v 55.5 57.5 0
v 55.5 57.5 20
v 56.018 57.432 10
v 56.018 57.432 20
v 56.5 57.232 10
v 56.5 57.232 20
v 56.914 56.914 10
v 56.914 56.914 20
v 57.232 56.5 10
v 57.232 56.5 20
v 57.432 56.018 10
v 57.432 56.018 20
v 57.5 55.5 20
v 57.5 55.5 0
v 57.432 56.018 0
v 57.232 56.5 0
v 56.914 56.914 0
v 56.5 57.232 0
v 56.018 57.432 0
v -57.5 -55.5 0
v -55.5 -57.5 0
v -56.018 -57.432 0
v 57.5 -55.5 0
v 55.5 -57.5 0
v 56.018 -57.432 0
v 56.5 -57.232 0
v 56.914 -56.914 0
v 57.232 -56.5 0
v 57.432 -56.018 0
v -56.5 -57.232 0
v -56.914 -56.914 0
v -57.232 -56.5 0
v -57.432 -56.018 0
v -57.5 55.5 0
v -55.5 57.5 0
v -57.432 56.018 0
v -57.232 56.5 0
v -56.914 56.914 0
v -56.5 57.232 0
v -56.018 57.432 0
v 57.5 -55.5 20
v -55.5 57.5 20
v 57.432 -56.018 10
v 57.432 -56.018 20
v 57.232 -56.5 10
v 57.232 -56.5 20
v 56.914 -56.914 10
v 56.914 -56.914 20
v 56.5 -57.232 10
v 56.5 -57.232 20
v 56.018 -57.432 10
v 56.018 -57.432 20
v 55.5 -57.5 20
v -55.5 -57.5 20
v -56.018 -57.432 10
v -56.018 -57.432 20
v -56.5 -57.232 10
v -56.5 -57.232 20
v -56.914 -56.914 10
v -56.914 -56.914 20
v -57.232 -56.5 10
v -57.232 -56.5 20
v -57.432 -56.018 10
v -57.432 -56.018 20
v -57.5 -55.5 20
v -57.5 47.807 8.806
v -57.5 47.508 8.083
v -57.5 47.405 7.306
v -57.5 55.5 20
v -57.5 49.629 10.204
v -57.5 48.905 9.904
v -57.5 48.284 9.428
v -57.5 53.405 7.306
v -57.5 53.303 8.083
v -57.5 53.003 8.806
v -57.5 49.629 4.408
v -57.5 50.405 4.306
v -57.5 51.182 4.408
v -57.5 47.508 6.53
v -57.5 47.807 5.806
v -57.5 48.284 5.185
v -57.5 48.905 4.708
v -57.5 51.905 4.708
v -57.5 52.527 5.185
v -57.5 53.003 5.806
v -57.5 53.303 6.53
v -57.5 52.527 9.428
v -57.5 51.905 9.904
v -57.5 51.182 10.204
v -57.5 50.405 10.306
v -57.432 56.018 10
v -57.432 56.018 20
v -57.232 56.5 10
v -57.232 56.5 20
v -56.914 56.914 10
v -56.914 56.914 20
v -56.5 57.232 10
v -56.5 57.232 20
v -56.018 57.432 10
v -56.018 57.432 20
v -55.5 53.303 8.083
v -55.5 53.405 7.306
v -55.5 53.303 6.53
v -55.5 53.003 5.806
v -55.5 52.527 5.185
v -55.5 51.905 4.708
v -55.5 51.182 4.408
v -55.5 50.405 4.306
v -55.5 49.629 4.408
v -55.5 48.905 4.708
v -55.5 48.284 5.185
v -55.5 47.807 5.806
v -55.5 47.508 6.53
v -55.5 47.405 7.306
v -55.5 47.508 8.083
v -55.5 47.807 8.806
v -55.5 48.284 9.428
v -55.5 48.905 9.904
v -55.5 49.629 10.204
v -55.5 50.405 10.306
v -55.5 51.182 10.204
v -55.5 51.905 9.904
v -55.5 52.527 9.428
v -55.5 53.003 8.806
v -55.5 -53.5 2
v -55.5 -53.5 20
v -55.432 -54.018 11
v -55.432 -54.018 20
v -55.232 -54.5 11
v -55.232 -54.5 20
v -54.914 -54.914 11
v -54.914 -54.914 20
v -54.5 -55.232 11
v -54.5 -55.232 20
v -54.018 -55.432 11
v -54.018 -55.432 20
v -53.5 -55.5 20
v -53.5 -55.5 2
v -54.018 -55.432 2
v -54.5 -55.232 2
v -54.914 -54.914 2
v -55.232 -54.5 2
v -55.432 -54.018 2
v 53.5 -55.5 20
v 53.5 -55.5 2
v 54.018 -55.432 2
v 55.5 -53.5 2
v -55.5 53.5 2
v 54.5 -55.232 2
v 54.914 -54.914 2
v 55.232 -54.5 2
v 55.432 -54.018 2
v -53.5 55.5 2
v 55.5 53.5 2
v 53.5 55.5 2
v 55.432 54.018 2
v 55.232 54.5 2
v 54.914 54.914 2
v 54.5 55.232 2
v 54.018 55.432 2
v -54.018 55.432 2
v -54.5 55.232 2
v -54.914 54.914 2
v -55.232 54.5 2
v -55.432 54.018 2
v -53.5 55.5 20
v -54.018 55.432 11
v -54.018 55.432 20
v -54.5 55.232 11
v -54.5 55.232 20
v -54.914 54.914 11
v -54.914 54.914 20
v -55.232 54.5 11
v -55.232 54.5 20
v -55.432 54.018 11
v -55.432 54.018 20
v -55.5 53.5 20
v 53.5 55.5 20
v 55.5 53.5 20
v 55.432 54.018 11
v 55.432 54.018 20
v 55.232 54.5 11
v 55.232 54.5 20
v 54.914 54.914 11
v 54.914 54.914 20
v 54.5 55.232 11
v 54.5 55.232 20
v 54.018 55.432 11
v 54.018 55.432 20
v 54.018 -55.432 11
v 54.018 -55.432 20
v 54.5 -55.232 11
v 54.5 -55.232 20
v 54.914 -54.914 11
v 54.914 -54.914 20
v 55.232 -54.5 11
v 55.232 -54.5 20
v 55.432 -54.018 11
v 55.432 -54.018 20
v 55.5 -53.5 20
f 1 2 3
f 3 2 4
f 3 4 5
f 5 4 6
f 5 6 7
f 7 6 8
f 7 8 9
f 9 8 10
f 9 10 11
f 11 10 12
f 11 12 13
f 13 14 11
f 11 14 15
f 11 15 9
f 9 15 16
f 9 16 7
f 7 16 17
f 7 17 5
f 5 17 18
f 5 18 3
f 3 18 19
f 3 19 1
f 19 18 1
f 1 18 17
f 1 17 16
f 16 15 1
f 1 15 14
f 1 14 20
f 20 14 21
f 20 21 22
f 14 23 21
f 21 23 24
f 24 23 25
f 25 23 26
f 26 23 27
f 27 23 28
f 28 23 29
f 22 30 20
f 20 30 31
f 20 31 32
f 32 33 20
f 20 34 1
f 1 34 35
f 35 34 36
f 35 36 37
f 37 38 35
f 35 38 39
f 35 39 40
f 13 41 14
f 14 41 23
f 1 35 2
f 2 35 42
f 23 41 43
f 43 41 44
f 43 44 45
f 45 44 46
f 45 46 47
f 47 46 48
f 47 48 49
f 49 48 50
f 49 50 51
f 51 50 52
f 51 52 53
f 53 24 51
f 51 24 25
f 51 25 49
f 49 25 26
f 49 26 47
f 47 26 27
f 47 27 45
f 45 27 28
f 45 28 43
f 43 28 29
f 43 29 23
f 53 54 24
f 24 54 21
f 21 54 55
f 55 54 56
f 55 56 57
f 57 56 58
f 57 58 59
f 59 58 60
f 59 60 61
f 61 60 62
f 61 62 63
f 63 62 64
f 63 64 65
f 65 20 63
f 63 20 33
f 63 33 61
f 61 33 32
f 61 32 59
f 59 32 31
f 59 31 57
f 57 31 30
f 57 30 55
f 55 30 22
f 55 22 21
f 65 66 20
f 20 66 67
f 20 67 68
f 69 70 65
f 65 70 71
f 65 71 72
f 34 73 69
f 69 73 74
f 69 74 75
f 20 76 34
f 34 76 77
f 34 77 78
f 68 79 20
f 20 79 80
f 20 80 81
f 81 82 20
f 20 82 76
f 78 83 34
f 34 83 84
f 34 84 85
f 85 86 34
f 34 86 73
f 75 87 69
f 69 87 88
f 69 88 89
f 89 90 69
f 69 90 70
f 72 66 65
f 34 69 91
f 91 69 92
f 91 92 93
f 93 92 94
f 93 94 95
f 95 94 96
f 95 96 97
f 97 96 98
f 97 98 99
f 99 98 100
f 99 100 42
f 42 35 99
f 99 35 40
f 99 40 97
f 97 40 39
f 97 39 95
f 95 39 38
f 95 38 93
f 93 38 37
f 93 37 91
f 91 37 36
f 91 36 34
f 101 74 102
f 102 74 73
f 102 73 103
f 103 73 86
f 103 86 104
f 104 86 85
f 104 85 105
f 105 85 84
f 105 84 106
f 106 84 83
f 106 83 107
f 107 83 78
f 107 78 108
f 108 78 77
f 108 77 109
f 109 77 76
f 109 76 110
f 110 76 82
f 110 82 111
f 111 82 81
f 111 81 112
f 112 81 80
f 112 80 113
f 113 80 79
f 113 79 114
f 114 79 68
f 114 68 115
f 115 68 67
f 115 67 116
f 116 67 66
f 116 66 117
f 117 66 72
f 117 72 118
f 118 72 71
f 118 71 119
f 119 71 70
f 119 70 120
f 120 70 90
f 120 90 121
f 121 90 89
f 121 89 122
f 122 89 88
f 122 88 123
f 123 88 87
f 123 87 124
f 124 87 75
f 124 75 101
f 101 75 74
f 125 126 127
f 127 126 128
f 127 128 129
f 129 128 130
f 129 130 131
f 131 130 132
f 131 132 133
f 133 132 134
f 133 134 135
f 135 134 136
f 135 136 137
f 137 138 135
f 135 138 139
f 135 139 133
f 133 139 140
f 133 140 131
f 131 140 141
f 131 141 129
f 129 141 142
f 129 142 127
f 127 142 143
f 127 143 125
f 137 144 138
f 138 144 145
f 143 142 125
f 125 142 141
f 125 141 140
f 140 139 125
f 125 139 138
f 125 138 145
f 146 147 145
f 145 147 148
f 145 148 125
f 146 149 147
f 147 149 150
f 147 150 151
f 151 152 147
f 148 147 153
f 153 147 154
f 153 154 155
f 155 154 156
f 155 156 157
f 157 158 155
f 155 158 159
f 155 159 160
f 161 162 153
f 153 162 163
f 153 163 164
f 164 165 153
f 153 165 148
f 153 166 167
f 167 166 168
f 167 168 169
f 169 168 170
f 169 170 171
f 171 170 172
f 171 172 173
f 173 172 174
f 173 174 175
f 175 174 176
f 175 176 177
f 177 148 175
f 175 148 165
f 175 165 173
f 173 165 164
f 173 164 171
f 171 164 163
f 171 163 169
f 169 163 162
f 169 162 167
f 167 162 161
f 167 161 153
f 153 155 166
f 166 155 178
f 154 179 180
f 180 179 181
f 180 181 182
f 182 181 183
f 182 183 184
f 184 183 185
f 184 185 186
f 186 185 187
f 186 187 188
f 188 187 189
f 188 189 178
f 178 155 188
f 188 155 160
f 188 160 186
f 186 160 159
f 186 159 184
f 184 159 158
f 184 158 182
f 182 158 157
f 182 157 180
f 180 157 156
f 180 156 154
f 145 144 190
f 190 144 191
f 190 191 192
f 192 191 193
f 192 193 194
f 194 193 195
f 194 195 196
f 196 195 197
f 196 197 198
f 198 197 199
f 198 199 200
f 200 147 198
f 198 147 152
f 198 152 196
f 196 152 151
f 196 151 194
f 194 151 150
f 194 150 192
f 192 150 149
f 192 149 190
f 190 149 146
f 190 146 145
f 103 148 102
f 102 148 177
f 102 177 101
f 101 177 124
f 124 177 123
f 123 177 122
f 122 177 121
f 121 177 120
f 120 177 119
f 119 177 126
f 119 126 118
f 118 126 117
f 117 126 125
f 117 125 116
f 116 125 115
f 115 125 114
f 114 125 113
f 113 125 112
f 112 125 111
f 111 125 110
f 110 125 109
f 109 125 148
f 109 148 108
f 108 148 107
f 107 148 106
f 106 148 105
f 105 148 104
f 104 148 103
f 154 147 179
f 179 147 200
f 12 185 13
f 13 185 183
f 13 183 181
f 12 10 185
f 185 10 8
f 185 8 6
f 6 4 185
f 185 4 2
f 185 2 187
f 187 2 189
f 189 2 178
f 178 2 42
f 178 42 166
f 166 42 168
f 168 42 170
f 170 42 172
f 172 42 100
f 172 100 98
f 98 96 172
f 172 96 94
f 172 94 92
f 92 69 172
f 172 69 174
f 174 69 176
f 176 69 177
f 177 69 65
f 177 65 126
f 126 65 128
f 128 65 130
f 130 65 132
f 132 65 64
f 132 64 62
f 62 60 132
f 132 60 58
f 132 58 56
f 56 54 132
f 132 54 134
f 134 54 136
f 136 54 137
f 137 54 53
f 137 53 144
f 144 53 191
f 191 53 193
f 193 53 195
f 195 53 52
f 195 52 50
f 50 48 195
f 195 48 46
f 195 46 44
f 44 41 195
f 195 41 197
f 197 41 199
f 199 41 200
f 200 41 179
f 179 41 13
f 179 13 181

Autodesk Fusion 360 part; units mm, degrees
sketch "Esboço1" plane through (0, 0, 0) normal (0, 0, 1) x (1, 0, 0) in component "CASE"
  line L0 (-57.5, 57.5) -> (57.5, 57.5)
  line L1 (57.5, 57.5) -> (57.5, -57.5)
  line L2 (57.5, -57.5) -> (-57.5, -57.5)
  line L3 (-57.5, -57.5) -> (-57.5, 57.5)
  line L4 (-57.5, 57.5) -> (57.5, -57.5) construction
  line L5 (57.5, 57.5) -> (-57.5, -57.5) construction
  dimension "d5" = 115
  dimension "d6" = 115
sketch "Esboço2" plane through (0, 0, 0) normal (1, 0, 0) x (0, 1, 0) in component "CASE"
extrude "Extrusão1" add sketch "Esboço1" along normal blind 20 in component "CASE"
fillet "Arredondamento1" radius 4 4 edges at (57.5, -57.5, 10) (57.5, 57.5, 10) (-57.5, 57.5, 10) (-57.5, -57.5, 10) in component "CASE"
shell "Casca1" thickness 2 removed faces 1 at (-17.8333, -16.5, 20) in component "CASE"
delete_face "Excluir face1" 1 faces at (-55.3329, 57.0553, 6.6667) in component "CASE"
hole "Furo1" at (-57.5, 50.4054, 7.3062) direction (1, 0, 0) diameter 6 depth 4 tip angle 118 in component "CASE"
fillet "Arredondamento2" radius 2 1 edges at (-57.5, 57.5, 10) in component "CASE"
delete_face "Excluir face2" 1 faces at (-57.4955, -53.6903, 6.6667) in component "CASE"
fillet "Arredondamento3" radius 2 1 edges at (-57.5, -57.5, 10) in component "CASE"
delete_face "Excluir face3" 1 faces at (53.6903, -57.4955, 6.6667) in component "CASE"
fillet "Arredondamento4" radius 2 1 edges at (57.5, -57.5, 10) in component "CASE"
delete_face "Excluir face4" 1 faces at (55.3329, 57.0553, 6.6667) in component "CASE"
fillet "Arredondamento5" radius 2 1 edges at (57.5, 57.5, 10) in component "CASE"
component "CASE" placed x (1, 0, 0) y (0, 1, 0) z (0, 0, 1) at (0, 0, 0)
equation "COMPRIMENTO = 115 mm"
equation "ALTURA = 20 mm"
equation "SHELL = 2 mm"
equation "GAP = 0.2 mm"
equation "d5 = COMPRIMENTO"
equation "d6 = COMPRIMENTO"
equation "d7 = ALTURA"
equation "d11 = SHELL"
